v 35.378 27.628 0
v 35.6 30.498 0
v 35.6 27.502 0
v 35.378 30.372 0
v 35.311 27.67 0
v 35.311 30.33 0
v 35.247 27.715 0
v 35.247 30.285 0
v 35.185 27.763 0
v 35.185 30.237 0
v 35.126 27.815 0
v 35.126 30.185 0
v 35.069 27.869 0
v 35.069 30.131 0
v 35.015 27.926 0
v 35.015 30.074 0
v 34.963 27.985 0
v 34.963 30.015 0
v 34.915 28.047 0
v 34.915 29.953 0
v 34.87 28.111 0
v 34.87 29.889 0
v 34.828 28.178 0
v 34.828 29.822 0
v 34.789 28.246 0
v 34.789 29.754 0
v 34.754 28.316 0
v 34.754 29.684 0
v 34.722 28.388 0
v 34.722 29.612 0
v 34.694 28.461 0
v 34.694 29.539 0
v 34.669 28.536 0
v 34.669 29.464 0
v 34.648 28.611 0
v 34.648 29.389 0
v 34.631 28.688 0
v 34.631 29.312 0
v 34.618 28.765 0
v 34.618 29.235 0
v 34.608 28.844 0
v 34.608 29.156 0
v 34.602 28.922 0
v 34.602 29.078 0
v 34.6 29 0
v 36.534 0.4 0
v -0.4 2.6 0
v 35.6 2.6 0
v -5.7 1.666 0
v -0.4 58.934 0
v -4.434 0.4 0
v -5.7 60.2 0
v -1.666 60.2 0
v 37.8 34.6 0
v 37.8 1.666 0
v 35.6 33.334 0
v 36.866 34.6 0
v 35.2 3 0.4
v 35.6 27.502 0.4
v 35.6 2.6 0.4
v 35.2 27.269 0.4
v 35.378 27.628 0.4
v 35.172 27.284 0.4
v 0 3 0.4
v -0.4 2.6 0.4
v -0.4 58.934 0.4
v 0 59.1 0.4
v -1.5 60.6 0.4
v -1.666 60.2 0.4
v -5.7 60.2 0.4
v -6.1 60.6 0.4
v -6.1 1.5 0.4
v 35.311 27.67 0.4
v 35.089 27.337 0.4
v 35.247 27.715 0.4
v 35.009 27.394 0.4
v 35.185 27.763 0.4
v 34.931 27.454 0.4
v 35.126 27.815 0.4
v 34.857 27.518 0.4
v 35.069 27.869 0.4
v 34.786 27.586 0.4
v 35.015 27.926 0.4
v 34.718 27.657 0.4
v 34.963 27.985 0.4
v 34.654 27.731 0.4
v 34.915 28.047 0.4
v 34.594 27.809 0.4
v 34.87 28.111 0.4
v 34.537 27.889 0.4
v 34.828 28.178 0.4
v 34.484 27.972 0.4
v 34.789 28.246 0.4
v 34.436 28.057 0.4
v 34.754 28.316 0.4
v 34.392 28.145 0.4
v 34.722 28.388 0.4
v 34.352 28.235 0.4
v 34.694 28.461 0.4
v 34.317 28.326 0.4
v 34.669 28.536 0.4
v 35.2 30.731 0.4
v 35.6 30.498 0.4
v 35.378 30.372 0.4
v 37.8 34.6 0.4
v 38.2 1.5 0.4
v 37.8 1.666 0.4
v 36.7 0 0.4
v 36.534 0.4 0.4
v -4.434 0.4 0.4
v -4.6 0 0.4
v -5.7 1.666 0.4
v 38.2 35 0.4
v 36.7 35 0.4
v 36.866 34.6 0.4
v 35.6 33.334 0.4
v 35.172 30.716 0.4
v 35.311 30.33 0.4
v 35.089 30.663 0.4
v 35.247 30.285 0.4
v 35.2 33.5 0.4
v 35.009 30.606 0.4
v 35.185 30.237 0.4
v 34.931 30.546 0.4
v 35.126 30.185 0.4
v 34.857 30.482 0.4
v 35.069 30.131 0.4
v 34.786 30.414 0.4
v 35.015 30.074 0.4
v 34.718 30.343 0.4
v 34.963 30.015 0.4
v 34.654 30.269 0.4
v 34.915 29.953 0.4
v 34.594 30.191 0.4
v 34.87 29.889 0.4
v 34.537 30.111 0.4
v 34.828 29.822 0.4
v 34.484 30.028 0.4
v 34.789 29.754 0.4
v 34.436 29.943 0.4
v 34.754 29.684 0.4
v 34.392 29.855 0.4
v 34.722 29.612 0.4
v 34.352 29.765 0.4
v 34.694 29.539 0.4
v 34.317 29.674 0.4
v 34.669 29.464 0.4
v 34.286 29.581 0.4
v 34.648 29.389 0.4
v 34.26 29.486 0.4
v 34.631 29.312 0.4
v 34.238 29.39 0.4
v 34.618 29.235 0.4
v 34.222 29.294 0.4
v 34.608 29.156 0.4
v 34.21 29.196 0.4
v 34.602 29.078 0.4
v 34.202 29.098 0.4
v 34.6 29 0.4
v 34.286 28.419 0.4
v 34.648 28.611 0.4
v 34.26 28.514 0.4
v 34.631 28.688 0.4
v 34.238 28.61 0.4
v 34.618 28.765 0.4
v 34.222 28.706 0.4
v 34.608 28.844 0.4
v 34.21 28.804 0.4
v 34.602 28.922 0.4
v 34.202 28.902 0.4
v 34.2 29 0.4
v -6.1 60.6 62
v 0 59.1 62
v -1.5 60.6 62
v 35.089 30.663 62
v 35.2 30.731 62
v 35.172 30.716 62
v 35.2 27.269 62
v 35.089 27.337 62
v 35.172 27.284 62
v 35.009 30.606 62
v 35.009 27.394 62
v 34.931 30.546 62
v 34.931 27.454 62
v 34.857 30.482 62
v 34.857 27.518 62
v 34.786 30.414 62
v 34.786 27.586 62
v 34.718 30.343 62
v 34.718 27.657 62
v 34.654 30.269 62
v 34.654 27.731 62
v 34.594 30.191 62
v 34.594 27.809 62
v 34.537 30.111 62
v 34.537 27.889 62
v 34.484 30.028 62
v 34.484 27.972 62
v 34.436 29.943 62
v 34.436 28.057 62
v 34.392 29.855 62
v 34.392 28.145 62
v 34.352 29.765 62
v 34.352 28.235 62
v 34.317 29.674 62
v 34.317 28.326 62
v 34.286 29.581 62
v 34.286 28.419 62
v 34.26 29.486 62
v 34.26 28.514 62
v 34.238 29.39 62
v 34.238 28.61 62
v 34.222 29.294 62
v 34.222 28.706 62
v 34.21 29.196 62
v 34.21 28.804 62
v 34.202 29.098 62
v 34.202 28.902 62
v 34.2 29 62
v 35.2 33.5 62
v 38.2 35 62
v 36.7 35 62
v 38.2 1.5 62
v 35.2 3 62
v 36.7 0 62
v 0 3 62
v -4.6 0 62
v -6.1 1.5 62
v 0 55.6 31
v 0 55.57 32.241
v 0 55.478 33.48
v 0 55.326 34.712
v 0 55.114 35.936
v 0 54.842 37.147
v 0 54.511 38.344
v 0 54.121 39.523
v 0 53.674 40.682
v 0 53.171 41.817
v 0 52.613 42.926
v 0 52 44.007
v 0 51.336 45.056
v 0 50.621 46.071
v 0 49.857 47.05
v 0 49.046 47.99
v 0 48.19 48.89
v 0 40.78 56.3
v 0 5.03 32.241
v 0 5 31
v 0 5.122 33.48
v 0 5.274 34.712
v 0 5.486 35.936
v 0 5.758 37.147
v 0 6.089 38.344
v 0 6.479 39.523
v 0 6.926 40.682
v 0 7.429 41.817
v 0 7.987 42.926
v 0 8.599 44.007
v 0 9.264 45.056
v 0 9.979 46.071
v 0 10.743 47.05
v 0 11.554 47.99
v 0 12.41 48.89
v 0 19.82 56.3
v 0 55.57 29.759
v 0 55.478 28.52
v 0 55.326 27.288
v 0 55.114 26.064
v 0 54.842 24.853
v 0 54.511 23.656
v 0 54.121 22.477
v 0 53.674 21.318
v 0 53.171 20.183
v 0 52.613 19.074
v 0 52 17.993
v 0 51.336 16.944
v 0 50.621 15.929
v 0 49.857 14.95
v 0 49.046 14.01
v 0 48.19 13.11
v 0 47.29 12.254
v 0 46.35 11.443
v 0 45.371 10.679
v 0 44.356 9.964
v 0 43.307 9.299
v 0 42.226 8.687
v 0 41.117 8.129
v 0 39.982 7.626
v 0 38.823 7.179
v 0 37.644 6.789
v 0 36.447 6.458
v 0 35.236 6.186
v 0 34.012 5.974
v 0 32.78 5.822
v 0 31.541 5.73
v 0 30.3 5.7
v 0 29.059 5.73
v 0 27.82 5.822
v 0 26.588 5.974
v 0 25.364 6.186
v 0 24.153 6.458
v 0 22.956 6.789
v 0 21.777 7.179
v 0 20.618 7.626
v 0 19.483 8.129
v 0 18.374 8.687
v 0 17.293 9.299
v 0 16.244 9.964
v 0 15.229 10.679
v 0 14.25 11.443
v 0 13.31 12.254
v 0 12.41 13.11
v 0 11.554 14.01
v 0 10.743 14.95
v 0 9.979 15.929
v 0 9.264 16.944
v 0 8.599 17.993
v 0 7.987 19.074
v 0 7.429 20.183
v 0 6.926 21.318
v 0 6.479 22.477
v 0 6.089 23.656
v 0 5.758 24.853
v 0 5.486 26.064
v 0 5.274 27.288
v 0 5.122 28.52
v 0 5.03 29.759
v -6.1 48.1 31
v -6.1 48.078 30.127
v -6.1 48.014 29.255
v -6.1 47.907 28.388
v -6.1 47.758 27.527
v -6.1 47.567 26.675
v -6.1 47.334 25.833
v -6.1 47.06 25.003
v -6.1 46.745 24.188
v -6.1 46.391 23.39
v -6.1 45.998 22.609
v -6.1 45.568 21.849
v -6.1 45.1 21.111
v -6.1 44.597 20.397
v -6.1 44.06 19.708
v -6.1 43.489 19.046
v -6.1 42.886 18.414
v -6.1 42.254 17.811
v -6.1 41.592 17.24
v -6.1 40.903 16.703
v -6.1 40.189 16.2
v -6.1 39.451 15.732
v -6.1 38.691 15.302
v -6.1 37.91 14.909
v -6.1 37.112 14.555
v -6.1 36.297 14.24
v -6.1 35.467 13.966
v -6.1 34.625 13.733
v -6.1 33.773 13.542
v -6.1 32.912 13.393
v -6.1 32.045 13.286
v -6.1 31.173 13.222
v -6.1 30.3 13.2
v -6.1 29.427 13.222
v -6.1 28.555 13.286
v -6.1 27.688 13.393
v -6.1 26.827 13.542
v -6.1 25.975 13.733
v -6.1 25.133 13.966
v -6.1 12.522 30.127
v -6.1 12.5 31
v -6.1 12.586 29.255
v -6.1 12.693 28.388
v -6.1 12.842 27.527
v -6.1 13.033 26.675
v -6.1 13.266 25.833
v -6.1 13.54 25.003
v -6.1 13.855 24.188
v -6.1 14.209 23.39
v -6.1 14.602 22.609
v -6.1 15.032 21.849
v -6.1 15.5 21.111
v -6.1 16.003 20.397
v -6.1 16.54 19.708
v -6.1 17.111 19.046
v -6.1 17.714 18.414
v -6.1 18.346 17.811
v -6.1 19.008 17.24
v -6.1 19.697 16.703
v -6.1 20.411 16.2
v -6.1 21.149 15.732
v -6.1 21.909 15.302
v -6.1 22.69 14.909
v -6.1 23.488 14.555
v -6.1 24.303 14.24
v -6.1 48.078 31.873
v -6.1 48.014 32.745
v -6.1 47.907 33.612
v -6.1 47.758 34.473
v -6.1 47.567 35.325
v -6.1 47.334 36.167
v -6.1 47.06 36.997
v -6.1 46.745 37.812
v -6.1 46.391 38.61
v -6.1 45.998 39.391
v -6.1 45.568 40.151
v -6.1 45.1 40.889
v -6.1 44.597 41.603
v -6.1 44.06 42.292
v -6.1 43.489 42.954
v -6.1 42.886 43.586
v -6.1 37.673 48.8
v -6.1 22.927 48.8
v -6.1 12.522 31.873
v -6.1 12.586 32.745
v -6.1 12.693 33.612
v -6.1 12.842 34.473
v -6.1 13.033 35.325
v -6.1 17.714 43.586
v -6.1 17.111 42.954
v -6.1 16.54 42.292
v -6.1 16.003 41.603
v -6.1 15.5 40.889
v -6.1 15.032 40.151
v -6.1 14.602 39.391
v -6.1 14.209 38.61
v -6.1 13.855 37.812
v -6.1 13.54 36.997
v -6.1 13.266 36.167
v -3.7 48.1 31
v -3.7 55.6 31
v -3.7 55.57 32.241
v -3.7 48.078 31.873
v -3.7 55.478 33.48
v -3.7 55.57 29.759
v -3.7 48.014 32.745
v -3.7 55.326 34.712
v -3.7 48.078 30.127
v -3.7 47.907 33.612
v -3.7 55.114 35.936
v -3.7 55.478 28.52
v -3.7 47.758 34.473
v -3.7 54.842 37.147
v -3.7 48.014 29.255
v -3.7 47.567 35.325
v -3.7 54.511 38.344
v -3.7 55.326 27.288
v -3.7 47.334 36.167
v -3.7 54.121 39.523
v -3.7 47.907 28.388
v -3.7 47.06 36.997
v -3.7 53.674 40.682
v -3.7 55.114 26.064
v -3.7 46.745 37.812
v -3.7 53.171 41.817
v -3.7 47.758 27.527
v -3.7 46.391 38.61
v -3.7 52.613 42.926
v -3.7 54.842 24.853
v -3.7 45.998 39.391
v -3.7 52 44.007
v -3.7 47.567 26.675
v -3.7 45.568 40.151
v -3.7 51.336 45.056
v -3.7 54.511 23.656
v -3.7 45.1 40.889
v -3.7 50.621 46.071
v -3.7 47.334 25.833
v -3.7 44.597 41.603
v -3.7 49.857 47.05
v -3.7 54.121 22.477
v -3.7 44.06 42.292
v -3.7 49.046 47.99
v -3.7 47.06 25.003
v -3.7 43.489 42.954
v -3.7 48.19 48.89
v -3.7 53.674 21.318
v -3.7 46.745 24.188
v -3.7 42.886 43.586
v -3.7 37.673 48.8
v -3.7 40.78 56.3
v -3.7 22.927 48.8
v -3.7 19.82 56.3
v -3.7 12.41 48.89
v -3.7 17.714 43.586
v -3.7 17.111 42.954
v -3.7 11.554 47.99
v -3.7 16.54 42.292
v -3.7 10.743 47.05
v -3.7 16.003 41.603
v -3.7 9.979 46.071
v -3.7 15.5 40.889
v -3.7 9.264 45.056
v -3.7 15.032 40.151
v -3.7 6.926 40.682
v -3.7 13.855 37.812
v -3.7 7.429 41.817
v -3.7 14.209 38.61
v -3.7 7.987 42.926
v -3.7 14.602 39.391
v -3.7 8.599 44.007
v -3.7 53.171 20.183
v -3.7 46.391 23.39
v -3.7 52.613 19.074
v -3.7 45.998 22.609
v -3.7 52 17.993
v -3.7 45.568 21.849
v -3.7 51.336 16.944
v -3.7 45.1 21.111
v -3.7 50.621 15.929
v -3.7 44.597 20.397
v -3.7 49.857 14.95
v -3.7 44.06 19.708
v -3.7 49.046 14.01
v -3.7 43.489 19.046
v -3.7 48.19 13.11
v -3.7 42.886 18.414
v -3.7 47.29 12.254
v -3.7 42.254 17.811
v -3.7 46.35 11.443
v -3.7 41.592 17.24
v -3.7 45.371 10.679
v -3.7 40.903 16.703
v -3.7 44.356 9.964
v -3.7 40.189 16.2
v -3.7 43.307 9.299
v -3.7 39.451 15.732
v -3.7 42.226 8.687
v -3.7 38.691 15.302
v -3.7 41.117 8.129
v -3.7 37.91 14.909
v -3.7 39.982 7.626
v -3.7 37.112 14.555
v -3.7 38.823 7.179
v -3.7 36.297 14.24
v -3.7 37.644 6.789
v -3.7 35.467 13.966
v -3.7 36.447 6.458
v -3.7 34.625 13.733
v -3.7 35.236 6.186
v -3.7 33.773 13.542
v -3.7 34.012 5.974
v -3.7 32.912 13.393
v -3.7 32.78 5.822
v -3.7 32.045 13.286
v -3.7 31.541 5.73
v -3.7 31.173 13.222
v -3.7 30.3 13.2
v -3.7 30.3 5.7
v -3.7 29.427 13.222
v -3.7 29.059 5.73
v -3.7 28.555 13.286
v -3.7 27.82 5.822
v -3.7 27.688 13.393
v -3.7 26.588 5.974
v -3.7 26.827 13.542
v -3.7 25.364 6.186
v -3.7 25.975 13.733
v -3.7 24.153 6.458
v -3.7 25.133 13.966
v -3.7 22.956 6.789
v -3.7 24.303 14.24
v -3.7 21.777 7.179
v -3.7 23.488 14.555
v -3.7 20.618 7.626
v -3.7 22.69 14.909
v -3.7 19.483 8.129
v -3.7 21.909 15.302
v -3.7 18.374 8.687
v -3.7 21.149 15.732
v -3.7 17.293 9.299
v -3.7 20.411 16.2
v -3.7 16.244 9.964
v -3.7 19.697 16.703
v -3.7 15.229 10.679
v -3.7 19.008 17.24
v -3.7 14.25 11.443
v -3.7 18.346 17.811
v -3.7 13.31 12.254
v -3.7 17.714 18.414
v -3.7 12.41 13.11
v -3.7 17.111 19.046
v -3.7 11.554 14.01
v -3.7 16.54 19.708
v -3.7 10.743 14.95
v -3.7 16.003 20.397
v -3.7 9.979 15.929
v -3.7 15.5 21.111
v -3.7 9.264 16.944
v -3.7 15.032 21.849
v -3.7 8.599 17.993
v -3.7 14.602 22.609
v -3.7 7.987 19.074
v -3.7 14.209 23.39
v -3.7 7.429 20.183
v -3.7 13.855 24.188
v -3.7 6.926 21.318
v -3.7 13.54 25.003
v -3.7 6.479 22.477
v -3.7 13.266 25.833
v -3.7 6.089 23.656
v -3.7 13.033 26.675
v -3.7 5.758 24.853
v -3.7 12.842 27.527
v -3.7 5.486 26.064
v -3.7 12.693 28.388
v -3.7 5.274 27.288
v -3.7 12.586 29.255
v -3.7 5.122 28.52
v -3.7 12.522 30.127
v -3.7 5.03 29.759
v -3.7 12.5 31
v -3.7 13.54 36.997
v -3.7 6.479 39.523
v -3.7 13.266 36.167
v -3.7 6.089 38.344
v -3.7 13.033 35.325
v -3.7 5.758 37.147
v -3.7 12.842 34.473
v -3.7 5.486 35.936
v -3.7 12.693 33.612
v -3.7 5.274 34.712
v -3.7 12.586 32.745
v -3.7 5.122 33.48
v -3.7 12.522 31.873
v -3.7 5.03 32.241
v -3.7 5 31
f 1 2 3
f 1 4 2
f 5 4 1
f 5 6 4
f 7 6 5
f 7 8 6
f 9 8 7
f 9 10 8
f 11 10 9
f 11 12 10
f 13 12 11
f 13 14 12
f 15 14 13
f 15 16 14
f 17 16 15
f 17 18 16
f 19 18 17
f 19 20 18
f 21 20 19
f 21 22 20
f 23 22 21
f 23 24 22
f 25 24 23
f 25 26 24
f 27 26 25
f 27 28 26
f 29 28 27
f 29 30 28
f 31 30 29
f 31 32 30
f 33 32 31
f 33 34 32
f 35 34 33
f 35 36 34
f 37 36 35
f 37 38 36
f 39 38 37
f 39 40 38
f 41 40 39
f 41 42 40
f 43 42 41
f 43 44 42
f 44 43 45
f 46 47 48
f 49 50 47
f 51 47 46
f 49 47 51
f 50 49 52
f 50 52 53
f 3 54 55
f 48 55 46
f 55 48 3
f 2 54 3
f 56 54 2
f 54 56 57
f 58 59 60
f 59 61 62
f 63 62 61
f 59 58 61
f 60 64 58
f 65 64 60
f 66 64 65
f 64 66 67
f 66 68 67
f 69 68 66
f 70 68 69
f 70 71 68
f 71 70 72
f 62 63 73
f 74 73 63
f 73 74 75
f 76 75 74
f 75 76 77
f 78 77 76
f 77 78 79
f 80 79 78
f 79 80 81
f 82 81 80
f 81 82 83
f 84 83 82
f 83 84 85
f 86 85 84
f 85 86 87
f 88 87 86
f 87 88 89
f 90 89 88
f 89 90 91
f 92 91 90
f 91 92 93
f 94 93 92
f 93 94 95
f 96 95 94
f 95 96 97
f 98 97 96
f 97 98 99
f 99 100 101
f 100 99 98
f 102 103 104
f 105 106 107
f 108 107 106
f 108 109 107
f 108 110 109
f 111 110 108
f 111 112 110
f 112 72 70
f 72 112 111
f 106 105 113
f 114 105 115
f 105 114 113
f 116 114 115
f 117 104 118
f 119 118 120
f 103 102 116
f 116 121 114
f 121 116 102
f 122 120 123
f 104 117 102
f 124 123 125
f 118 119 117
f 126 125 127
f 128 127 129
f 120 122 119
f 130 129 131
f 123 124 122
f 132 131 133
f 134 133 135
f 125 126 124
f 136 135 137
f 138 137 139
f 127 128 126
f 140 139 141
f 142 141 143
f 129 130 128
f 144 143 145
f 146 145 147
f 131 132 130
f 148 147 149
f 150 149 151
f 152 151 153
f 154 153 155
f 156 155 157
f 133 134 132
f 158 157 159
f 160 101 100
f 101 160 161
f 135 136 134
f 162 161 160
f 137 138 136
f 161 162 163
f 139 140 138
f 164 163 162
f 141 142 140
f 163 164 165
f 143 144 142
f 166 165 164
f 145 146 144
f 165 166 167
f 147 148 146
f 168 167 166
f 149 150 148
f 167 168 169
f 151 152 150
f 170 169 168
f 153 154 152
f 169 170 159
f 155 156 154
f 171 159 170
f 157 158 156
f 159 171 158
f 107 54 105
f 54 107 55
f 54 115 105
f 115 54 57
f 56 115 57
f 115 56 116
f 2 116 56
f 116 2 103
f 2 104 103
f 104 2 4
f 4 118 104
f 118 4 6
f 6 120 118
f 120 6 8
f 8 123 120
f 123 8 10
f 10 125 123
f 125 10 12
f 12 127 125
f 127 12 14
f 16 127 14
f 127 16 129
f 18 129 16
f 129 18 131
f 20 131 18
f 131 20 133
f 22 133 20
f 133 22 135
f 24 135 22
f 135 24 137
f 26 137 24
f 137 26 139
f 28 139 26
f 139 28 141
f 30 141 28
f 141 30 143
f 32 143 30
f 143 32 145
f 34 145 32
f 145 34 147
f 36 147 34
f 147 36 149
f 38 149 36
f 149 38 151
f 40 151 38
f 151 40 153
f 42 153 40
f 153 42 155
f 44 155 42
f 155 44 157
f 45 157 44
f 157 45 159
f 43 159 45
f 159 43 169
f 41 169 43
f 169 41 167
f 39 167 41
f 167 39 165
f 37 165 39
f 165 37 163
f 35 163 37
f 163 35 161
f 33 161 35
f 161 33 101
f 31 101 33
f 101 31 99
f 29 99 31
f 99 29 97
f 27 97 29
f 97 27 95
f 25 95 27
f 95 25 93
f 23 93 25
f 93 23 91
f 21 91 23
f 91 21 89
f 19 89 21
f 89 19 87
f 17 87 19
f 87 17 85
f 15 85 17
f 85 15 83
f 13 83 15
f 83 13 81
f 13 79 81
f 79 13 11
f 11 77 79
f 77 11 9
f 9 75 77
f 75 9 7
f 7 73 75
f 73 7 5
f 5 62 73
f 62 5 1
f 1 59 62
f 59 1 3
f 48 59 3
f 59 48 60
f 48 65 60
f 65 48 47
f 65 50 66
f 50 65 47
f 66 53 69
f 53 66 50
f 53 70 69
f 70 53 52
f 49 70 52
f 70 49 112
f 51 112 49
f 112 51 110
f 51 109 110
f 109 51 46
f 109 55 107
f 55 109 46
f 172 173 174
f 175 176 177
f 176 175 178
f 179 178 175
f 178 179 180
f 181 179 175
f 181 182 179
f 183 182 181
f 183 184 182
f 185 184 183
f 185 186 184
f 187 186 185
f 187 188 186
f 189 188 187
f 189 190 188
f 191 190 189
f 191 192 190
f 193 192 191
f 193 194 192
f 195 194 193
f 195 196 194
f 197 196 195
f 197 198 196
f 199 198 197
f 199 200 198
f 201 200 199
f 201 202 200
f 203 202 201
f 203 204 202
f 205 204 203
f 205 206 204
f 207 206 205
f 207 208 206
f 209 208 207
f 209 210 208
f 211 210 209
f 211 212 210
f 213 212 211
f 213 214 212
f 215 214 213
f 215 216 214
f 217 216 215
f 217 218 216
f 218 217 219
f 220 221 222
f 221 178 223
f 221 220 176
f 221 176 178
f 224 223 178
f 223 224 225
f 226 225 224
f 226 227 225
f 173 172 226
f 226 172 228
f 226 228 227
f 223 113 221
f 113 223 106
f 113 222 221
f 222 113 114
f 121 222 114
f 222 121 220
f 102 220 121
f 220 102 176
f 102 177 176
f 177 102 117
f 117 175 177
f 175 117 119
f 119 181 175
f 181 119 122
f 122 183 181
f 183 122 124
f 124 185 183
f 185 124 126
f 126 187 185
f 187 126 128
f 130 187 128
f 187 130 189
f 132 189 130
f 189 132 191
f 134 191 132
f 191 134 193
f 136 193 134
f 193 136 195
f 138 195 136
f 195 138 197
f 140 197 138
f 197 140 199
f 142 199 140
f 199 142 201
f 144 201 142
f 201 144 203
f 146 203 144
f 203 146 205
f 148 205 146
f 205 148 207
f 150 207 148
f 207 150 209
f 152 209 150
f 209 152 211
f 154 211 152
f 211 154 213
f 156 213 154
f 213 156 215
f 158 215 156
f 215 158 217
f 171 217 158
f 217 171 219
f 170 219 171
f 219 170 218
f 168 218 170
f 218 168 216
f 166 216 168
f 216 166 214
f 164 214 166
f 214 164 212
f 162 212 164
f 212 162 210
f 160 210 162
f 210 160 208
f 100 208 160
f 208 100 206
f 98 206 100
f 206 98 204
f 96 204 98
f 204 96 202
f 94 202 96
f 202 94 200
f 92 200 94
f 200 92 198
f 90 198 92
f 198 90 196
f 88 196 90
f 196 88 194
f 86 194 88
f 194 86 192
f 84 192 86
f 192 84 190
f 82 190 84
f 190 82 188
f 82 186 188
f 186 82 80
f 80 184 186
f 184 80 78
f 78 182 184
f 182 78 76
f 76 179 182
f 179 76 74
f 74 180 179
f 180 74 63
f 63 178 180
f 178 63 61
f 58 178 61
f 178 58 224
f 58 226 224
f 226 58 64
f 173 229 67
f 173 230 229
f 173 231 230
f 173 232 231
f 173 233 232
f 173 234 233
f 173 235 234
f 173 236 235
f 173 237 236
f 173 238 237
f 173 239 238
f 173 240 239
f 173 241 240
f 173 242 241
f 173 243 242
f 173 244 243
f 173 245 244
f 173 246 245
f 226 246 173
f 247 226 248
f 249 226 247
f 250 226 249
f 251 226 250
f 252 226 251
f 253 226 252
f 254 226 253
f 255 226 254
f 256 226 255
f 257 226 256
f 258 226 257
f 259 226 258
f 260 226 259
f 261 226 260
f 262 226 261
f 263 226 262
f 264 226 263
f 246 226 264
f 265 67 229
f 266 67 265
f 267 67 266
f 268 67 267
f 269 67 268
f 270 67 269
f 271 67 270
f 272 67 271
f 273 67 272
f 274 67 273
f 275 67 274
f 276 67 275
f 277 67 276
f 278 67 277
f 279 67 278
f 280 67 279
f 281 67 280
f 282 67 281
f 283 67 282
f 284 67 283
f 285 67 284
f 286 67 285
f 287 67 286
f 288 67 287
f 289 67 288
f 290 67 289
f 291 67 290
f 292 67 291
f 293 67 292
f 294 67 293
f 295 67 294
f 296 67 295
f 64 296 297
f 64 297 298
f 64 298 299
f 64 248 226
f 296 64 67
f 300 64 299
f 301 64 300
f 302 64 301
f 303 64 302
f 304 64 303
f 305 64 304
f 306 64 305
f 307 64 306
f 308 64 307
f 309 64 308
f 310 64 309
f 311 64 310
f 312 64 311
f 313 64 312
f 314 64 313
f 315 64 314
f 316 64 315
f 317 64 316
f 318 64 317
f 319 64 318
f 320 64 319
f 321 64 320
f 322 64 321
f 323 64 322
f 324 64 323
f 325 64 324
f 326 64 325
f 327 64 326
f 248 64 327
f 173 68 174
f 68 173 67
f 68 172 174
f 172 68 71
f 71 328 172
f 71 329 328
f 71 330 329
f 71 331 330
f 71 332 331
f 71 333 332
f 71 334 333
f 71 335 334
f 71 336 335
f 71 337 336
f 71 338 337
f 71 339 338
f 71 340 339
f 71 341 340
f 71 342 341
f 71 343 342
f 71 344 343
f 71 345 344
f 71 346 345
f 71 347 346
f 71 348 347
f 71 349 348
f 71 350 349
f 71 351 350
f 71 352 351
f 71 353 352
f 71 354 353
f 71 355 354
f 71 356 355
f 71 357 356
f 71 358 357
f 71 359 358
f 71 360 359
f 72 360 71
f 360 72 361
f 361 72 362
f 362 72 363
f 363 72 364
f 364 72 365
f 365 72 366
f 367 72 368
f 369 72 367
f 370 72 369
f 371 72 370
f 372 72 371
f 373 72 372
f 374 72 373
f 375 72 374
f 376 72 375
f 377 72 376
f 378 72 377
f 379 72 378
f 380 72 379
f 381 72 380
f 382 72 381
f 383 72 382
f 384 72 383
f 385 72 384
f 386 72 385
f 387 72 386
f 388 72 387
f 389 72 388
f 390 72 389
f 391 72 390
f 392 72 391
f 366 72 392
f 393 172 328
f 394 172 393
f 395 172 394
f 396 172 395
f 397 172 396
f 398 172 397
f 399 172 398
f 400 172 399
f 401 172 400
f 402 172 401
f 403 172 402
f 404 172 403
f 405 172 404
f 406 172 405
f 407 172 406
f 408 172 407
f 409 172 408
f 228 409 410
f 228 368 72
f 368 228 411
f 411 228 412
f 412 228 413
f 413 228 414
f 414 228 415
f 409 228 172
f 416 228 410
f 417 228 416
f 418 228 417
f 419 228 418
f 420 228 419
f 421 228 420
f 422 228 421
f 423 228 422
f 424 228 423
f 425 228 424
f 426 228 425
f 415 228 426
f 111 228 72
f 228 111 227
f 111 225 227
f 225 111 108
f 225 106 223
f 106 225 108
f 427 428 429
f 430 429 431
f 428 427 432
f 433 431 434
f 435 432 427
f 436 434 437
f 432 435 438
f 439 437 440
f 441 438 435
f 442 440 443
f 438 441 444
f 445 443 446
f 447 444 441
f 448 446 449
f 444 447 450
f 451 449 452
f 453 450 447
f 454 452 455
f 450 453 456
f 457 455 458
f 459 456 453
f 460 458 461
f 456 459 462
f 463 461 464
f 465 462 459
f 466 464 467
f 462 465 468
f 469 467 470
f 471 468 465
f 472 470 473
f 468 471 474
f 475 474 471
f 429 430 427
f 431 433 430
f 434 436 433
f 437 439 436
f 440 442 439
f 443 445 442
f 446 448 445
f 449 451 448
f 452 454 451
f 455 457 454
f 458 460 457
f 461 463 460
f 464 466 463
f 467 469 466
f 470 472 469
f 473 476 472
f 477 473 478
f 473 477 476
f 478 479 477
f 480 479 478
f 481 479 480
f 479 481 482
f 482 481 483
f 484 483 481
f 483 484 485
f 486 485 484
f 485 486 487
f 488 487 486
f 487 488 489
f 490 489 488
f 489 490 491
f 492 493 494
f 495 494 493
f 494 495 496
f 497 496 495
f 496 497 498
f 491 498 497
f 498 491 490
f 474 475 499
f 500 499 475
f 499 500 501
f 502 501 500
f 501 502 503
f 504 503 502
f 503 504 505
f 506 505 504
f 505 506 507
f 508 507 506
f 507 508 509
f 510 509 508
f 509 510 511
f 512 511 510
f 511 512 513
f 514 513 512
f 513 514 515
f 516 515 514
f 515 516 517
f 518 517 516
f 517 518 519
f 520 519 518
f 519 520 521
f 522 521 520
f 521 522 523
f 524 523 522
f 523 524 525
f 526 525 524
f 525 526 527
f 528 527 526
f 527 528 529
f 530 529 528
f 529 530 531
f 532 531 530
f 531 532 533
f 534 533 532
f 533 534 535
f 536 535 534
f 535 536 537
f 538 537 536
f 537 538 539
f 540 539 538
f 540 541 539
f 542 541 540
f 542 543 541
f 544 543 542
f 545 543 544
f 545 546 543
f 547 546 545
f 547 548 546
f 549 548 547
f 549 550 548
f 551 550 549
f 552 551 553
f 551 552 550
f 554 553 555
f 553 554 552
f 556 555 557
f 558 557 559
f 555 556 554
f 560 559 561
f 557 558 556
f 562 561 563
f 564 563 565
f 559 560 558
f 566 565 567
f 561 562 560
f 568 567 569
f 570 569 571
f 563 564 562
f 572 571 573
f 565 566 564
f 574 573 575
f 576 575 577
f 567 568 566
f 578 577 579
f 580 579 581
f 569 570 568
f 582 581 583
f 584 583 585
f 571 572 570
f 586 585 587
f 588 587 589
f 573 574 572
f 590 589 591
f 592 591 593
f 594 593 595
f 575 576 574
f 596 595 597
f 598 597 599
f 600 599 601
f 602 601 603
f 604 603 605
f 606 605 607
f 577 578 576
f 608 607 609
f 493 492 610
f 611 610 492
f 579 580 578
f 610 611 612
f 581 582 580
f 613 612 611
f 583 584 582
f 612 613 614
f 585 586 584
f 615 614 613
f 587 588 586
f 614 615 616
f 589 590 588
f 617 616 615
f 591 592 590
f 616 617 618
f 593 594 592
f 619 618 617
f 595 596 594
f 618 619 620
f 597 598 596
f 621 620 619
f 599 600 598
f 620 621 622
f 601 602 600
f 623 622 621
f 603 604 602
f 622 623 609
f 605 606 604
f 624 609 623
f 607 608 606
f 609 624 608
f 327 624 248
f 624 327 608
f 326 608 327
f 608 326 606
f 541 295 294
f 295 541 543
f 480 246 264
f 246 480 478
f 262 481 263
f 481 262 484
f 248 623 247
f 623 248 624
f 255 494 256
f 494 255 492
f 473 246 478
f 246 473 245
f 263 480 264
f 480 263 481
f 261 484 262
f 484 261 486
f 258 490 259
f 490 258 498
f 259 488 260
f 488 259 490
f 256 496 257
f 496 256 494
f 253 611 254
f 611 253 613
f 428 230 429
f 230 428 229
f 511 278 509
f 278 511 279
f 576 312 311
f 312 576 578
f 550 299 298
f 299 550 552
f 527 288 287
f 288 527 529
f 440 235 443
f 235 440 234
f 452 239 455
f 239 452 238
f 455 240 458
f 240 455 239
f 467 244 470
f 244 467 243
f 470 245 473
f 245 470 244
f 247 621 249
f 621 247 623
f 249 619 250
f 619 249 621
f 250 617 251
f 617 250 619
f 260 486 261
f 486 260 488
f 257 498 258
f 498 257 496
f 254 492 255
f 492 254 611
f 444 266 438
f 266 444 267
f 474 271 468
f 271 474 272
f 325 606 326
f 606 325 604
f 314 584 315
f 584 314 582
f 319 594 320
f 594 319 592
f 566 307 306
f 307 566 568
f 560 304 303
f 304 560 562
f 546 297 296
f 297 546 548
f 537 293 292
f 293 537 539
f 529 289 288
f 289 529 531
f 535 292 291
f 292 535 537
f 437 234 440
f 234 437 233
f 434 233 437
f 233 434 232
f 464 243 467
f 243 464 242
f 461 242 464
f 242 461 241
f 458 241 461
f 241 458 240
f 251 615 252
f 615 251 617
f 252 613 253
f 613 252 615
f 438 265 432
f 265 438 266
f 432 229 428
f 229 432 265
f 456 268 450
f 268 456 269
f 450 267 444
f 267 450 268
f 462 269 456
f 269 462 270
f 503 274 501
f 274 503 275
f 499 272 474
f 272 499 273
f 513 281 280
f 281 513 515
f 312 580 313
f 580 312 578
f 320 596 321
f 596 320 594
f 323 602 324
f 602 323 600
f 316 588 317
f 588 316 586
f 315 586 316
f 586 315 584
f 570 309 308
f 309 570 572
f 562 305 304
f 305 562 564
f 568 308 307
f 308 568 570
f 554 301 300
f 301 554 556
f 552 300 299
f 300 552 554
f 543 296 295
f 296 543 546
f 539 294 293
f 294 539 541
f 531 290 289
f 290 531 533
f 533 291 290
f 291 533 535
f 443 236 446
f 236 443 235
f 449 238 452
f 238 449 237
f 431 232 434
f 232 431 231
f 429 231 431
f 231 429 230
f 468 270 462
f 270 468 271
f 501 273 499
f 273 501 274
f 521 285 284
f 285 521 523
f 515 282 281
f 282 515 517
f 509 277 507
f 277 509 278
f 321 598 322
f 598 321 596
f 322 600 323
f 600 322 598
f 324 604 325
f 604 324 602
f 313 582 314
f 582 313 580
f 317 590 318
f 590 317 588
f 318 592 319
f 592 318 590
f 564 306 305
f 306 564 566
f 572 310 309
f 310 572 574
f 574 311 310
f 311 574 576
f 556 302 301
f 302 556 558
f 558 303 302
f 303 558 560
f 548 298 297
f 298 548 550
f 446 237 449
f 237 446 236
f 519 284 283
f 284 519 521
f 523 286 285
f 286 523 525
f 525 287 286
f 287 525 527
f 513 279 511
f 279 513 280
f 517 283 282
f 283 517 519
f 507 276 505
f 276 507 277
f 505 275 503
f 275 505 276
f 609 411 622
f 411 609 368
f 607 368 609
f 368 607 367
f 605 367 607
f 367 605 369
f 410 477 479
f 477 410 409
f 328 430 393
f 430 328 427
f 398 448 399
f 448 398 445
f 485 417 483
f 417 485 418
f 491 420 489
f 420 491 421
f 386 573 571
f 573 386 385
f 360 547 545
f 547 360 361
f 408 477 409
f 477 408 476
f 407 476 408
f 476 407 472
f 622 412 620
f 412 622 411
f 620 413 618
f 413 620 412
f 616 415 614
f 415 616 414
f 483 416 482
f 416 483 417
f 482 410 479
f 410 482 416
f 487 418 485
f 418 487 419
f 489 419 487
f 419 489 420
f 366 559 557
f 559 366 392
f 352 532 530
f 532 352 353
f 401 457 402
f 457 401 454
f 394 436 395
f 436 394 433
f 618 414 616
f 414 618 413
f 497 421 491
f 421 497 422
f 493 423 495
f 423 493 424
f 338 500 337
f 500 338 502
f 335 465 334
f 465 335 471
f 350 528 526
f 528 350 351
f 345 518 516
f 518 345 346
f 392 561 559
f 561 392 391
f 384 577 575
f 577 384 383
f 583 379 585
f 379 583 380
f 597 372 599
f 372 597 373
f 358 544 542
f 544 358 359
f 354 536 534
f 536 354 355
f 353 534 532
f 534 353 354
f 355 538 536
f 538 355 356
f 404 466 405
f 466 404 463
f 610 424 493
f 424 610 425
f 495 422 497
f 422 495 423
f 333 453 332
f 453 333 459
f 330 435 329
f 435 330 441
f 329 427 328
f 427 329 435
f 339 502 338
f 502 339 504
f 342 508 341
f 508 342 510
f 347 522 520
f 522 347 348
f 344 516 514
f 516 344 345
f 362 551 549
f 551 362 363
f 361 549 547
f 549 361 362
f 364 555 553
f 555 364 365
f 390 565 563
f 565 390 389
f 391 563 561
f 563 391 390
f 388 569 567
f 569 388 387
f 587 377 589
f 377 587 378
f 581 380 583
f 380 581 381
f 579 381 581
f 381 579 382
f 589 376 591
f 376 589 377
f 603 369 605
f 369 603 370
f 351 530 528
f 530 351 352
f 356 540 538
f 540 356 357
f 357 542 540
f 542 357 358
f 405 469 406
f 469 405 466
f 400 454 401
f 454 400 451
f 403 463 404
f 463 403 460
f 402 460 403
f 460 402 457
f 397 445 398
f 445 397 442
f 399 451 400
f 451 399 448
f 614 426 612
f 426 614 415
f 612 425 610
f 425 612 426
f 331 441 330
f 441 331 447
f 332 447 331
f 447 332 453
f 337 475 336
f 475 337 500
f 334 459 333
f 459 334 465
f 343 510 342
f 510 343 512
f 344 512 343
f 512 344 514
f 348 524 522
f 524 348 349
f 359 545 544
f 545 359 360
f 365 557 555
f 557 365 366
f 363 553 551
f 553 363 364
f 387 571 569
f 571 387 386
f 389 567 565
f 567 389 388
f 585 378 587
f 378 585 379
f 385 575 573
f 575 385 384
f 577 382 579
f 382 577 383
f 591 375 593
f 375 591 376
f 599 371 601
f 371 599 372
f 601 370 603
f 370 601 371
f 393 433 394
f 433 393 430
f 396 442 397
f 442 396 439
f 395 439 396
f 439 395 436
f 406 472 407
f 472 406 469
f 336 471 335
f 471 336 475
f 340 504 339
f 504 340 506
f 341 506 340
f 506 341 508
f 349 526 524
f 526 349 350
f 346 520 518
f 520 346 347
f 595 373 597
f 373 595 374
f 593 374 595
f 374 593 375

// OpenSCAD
// Press-fit U clip for the bottom edge of a door, holding a round magnetic
// door stop/catch on one face of the door. No screws, no drilling.
//
// The item's wide disk sits in a pocket on the inner face of the front arm,
// clamped between the arm and the door; the ribbed body passes through a hole.
//
// Modeled in PRINT orientation: the U profile lies on the bed (XY plane) and
// the clip width runs along Z. Layers follow the U, so the arms flex within
// the strong XY plane. Horizontal holes use flat-topped teardrops (no supports).
//
// Axes: X = across the door thickness (door face at x = 0, door from x = 0 to
// door_t), Y = up the door (y = 0 is the underside of the clip), Z = along the
// door's bottom edge.

/* [Door] */
door_t      = 35;    // door thickness [mm]
floor_gap   = 5;     // gap between door bottom and floor (reference) [mm]

/* [Item dimensions] */
disk_d      = 50;    // wide black disk diameter (A) [mm]
disk_t      = 4;     // wide black disk thickness [mm] (estimated, measure!)
body_d      = 35;    // ribbed body diameter below the disk (B) [mm]
item_h      = 20;    // total item height (C) [mm] (reference only)

/* [Fit] */
clearance   = 0.3;   // radial gap around disk and body [mm]
clamp       = 0.3;   // disk protrudes this much past the arm to press on the door [mm]
fit_gap     = 0.2;   // extra opening at the U base so it slides on easily [mm]
grip        = 1.0;   // how far the grip ridge on the back arm reaches into the door [mm]
ridge_r     = 2.0;   // radius of the grip ridge [mm]
ridge_from_tip = 6;  // ridge center distance from the back arm tip [mm]
lead_in     = 1.5;   // 45 deg chamfer on arm tips for easy push-on [mm]

/* [Clip] */
width       = 62;    // clip width along the door edge [mm]
bridge_t    = 3;     // thickness under the door (must be < floor_gap) [mm]
front_t     = 2.4;   // front lip holding the disk [mm]
back_t      = 3;     // back arm thickness (the spring) [mm]
back_h      = 35;    // back arm height from clip underside [mm]
disk_margin = 2;     // gap between door bottom and disk edge [mm]
top_margin  = 5;     // material above the disk on the front arm [mm]
outer_chamfer = 1.5; // chamfer on the outer bottom corners [mm]
foot_inset  = 0.4;   // first-layer inset against elephant foot [mm]

/* [Test] */
test_fit    = false; // true = thin slice without the item holder, to test the grip
test_width  = 10;    // width of the test slice [mm]

/* [Quality] */
$fn = 128;

// Derived
pocket_depth = disk_t - clamp;
front_arm_t  = front_t + pocket_depth;
pocket_d     = disk_d + 2 * clearance;
hole_d       = body_d + 2 * clearance;
inner_gap    = door_t + fit_gap;
item_y       = bridge_t + disk_margin + pocket_d / 2;   // item center height
front_h      = item_y + pocket_d / 2 + top_margin;
clip_w       = test_fit ? test_width : width;
eps          = 0.01;

assert(bridge_t < floor_gap, "bridge_t must be smaller than floor_gap");

module profile() {
    difference() {
        union() {
            // Bridge under the door
            translate([-front_arm_t, 0]) square([front_arm_t + inner_gap + back_t, bridge_t]);
            // Front arm (item side)
            translate([-front_arm_t, 0]) square([front_arm_t, test_fit ? back_h : front_h]);
            // Back arm (spring)
            translate([inner_gap, 0]) square([back_t, back_h]);
            // Grip ridge on the inner face of the back arm
            intersection() {
                translate([inner_gap - grip + ridge_r, back_h - ridge_from_tip]) circle(r = ridge_r);
                translate([inner_gap - grip, 0]) square([grip + back_t, back_h]);
            }
        }
        // Lead-in chamfer on the back arm tip (inner edge)
        translate([inner_gap, back_h]) rotate(45) square(lead_in * sqrt(2), center = true);
        // Lead-in chamfer on the front arm tip (inner edge)
        translate([0, test_fit ? back_h : front_h]) rotate(45) square(lead_in * sqrt(2), center = true);
        // Outer bottom corner chamfers
        translate([-front_arm_t, 0]) rotate(45) square(outer_chamfer * sqrt(2), center = true);
        translate([inner_gap + back_t, 0]) rotate(45) square(outer_chamfer * sqrt(2), center = true);
    }
}

// Flat-topped teardrop extruded along +X, tip pointing +Z (print up)
module teardrop_x(d, len) {
    r = d / 2;
    rotate([0, 90, 0])
        linear_extrude(height = len)
            intersection() {
                hull() {
                    circle(d = d);
                    // local -x maps to global +z after rotate
                    polygon([[0, -r / sqrt(2)], [0, r / sqrt(2)], [-r * sqrt(2), 0]]);
                }
                translate([-r, -r]) square([2 * r, 2 * r]);   // flat top at r
            }
}

module clip() {
    difference() {
        union() {
            // First layer inset against elephant foot
            linear_extrude(height = foot_inset) offset(delta = -foot_inset) profile();
            translate([0, 0, foot_inset]) linear_extrude(height = clip_w - foot_inset) profile();
        }
        if (!test_fit) {
            // Pocket for the wide disk, open towards the door
            translate([-pocket_depth, item_y, clip_w / 2]) teardrop_x(pocket_d, pocket_depth + eps);
            // Through hole for the ribbed body
            translate([-front_arm_t - eps, item_y, clip_w / 2]) teardrop_x(hole_d, front_arm_t + 2 * eps);
        }
    }
}

clip();
